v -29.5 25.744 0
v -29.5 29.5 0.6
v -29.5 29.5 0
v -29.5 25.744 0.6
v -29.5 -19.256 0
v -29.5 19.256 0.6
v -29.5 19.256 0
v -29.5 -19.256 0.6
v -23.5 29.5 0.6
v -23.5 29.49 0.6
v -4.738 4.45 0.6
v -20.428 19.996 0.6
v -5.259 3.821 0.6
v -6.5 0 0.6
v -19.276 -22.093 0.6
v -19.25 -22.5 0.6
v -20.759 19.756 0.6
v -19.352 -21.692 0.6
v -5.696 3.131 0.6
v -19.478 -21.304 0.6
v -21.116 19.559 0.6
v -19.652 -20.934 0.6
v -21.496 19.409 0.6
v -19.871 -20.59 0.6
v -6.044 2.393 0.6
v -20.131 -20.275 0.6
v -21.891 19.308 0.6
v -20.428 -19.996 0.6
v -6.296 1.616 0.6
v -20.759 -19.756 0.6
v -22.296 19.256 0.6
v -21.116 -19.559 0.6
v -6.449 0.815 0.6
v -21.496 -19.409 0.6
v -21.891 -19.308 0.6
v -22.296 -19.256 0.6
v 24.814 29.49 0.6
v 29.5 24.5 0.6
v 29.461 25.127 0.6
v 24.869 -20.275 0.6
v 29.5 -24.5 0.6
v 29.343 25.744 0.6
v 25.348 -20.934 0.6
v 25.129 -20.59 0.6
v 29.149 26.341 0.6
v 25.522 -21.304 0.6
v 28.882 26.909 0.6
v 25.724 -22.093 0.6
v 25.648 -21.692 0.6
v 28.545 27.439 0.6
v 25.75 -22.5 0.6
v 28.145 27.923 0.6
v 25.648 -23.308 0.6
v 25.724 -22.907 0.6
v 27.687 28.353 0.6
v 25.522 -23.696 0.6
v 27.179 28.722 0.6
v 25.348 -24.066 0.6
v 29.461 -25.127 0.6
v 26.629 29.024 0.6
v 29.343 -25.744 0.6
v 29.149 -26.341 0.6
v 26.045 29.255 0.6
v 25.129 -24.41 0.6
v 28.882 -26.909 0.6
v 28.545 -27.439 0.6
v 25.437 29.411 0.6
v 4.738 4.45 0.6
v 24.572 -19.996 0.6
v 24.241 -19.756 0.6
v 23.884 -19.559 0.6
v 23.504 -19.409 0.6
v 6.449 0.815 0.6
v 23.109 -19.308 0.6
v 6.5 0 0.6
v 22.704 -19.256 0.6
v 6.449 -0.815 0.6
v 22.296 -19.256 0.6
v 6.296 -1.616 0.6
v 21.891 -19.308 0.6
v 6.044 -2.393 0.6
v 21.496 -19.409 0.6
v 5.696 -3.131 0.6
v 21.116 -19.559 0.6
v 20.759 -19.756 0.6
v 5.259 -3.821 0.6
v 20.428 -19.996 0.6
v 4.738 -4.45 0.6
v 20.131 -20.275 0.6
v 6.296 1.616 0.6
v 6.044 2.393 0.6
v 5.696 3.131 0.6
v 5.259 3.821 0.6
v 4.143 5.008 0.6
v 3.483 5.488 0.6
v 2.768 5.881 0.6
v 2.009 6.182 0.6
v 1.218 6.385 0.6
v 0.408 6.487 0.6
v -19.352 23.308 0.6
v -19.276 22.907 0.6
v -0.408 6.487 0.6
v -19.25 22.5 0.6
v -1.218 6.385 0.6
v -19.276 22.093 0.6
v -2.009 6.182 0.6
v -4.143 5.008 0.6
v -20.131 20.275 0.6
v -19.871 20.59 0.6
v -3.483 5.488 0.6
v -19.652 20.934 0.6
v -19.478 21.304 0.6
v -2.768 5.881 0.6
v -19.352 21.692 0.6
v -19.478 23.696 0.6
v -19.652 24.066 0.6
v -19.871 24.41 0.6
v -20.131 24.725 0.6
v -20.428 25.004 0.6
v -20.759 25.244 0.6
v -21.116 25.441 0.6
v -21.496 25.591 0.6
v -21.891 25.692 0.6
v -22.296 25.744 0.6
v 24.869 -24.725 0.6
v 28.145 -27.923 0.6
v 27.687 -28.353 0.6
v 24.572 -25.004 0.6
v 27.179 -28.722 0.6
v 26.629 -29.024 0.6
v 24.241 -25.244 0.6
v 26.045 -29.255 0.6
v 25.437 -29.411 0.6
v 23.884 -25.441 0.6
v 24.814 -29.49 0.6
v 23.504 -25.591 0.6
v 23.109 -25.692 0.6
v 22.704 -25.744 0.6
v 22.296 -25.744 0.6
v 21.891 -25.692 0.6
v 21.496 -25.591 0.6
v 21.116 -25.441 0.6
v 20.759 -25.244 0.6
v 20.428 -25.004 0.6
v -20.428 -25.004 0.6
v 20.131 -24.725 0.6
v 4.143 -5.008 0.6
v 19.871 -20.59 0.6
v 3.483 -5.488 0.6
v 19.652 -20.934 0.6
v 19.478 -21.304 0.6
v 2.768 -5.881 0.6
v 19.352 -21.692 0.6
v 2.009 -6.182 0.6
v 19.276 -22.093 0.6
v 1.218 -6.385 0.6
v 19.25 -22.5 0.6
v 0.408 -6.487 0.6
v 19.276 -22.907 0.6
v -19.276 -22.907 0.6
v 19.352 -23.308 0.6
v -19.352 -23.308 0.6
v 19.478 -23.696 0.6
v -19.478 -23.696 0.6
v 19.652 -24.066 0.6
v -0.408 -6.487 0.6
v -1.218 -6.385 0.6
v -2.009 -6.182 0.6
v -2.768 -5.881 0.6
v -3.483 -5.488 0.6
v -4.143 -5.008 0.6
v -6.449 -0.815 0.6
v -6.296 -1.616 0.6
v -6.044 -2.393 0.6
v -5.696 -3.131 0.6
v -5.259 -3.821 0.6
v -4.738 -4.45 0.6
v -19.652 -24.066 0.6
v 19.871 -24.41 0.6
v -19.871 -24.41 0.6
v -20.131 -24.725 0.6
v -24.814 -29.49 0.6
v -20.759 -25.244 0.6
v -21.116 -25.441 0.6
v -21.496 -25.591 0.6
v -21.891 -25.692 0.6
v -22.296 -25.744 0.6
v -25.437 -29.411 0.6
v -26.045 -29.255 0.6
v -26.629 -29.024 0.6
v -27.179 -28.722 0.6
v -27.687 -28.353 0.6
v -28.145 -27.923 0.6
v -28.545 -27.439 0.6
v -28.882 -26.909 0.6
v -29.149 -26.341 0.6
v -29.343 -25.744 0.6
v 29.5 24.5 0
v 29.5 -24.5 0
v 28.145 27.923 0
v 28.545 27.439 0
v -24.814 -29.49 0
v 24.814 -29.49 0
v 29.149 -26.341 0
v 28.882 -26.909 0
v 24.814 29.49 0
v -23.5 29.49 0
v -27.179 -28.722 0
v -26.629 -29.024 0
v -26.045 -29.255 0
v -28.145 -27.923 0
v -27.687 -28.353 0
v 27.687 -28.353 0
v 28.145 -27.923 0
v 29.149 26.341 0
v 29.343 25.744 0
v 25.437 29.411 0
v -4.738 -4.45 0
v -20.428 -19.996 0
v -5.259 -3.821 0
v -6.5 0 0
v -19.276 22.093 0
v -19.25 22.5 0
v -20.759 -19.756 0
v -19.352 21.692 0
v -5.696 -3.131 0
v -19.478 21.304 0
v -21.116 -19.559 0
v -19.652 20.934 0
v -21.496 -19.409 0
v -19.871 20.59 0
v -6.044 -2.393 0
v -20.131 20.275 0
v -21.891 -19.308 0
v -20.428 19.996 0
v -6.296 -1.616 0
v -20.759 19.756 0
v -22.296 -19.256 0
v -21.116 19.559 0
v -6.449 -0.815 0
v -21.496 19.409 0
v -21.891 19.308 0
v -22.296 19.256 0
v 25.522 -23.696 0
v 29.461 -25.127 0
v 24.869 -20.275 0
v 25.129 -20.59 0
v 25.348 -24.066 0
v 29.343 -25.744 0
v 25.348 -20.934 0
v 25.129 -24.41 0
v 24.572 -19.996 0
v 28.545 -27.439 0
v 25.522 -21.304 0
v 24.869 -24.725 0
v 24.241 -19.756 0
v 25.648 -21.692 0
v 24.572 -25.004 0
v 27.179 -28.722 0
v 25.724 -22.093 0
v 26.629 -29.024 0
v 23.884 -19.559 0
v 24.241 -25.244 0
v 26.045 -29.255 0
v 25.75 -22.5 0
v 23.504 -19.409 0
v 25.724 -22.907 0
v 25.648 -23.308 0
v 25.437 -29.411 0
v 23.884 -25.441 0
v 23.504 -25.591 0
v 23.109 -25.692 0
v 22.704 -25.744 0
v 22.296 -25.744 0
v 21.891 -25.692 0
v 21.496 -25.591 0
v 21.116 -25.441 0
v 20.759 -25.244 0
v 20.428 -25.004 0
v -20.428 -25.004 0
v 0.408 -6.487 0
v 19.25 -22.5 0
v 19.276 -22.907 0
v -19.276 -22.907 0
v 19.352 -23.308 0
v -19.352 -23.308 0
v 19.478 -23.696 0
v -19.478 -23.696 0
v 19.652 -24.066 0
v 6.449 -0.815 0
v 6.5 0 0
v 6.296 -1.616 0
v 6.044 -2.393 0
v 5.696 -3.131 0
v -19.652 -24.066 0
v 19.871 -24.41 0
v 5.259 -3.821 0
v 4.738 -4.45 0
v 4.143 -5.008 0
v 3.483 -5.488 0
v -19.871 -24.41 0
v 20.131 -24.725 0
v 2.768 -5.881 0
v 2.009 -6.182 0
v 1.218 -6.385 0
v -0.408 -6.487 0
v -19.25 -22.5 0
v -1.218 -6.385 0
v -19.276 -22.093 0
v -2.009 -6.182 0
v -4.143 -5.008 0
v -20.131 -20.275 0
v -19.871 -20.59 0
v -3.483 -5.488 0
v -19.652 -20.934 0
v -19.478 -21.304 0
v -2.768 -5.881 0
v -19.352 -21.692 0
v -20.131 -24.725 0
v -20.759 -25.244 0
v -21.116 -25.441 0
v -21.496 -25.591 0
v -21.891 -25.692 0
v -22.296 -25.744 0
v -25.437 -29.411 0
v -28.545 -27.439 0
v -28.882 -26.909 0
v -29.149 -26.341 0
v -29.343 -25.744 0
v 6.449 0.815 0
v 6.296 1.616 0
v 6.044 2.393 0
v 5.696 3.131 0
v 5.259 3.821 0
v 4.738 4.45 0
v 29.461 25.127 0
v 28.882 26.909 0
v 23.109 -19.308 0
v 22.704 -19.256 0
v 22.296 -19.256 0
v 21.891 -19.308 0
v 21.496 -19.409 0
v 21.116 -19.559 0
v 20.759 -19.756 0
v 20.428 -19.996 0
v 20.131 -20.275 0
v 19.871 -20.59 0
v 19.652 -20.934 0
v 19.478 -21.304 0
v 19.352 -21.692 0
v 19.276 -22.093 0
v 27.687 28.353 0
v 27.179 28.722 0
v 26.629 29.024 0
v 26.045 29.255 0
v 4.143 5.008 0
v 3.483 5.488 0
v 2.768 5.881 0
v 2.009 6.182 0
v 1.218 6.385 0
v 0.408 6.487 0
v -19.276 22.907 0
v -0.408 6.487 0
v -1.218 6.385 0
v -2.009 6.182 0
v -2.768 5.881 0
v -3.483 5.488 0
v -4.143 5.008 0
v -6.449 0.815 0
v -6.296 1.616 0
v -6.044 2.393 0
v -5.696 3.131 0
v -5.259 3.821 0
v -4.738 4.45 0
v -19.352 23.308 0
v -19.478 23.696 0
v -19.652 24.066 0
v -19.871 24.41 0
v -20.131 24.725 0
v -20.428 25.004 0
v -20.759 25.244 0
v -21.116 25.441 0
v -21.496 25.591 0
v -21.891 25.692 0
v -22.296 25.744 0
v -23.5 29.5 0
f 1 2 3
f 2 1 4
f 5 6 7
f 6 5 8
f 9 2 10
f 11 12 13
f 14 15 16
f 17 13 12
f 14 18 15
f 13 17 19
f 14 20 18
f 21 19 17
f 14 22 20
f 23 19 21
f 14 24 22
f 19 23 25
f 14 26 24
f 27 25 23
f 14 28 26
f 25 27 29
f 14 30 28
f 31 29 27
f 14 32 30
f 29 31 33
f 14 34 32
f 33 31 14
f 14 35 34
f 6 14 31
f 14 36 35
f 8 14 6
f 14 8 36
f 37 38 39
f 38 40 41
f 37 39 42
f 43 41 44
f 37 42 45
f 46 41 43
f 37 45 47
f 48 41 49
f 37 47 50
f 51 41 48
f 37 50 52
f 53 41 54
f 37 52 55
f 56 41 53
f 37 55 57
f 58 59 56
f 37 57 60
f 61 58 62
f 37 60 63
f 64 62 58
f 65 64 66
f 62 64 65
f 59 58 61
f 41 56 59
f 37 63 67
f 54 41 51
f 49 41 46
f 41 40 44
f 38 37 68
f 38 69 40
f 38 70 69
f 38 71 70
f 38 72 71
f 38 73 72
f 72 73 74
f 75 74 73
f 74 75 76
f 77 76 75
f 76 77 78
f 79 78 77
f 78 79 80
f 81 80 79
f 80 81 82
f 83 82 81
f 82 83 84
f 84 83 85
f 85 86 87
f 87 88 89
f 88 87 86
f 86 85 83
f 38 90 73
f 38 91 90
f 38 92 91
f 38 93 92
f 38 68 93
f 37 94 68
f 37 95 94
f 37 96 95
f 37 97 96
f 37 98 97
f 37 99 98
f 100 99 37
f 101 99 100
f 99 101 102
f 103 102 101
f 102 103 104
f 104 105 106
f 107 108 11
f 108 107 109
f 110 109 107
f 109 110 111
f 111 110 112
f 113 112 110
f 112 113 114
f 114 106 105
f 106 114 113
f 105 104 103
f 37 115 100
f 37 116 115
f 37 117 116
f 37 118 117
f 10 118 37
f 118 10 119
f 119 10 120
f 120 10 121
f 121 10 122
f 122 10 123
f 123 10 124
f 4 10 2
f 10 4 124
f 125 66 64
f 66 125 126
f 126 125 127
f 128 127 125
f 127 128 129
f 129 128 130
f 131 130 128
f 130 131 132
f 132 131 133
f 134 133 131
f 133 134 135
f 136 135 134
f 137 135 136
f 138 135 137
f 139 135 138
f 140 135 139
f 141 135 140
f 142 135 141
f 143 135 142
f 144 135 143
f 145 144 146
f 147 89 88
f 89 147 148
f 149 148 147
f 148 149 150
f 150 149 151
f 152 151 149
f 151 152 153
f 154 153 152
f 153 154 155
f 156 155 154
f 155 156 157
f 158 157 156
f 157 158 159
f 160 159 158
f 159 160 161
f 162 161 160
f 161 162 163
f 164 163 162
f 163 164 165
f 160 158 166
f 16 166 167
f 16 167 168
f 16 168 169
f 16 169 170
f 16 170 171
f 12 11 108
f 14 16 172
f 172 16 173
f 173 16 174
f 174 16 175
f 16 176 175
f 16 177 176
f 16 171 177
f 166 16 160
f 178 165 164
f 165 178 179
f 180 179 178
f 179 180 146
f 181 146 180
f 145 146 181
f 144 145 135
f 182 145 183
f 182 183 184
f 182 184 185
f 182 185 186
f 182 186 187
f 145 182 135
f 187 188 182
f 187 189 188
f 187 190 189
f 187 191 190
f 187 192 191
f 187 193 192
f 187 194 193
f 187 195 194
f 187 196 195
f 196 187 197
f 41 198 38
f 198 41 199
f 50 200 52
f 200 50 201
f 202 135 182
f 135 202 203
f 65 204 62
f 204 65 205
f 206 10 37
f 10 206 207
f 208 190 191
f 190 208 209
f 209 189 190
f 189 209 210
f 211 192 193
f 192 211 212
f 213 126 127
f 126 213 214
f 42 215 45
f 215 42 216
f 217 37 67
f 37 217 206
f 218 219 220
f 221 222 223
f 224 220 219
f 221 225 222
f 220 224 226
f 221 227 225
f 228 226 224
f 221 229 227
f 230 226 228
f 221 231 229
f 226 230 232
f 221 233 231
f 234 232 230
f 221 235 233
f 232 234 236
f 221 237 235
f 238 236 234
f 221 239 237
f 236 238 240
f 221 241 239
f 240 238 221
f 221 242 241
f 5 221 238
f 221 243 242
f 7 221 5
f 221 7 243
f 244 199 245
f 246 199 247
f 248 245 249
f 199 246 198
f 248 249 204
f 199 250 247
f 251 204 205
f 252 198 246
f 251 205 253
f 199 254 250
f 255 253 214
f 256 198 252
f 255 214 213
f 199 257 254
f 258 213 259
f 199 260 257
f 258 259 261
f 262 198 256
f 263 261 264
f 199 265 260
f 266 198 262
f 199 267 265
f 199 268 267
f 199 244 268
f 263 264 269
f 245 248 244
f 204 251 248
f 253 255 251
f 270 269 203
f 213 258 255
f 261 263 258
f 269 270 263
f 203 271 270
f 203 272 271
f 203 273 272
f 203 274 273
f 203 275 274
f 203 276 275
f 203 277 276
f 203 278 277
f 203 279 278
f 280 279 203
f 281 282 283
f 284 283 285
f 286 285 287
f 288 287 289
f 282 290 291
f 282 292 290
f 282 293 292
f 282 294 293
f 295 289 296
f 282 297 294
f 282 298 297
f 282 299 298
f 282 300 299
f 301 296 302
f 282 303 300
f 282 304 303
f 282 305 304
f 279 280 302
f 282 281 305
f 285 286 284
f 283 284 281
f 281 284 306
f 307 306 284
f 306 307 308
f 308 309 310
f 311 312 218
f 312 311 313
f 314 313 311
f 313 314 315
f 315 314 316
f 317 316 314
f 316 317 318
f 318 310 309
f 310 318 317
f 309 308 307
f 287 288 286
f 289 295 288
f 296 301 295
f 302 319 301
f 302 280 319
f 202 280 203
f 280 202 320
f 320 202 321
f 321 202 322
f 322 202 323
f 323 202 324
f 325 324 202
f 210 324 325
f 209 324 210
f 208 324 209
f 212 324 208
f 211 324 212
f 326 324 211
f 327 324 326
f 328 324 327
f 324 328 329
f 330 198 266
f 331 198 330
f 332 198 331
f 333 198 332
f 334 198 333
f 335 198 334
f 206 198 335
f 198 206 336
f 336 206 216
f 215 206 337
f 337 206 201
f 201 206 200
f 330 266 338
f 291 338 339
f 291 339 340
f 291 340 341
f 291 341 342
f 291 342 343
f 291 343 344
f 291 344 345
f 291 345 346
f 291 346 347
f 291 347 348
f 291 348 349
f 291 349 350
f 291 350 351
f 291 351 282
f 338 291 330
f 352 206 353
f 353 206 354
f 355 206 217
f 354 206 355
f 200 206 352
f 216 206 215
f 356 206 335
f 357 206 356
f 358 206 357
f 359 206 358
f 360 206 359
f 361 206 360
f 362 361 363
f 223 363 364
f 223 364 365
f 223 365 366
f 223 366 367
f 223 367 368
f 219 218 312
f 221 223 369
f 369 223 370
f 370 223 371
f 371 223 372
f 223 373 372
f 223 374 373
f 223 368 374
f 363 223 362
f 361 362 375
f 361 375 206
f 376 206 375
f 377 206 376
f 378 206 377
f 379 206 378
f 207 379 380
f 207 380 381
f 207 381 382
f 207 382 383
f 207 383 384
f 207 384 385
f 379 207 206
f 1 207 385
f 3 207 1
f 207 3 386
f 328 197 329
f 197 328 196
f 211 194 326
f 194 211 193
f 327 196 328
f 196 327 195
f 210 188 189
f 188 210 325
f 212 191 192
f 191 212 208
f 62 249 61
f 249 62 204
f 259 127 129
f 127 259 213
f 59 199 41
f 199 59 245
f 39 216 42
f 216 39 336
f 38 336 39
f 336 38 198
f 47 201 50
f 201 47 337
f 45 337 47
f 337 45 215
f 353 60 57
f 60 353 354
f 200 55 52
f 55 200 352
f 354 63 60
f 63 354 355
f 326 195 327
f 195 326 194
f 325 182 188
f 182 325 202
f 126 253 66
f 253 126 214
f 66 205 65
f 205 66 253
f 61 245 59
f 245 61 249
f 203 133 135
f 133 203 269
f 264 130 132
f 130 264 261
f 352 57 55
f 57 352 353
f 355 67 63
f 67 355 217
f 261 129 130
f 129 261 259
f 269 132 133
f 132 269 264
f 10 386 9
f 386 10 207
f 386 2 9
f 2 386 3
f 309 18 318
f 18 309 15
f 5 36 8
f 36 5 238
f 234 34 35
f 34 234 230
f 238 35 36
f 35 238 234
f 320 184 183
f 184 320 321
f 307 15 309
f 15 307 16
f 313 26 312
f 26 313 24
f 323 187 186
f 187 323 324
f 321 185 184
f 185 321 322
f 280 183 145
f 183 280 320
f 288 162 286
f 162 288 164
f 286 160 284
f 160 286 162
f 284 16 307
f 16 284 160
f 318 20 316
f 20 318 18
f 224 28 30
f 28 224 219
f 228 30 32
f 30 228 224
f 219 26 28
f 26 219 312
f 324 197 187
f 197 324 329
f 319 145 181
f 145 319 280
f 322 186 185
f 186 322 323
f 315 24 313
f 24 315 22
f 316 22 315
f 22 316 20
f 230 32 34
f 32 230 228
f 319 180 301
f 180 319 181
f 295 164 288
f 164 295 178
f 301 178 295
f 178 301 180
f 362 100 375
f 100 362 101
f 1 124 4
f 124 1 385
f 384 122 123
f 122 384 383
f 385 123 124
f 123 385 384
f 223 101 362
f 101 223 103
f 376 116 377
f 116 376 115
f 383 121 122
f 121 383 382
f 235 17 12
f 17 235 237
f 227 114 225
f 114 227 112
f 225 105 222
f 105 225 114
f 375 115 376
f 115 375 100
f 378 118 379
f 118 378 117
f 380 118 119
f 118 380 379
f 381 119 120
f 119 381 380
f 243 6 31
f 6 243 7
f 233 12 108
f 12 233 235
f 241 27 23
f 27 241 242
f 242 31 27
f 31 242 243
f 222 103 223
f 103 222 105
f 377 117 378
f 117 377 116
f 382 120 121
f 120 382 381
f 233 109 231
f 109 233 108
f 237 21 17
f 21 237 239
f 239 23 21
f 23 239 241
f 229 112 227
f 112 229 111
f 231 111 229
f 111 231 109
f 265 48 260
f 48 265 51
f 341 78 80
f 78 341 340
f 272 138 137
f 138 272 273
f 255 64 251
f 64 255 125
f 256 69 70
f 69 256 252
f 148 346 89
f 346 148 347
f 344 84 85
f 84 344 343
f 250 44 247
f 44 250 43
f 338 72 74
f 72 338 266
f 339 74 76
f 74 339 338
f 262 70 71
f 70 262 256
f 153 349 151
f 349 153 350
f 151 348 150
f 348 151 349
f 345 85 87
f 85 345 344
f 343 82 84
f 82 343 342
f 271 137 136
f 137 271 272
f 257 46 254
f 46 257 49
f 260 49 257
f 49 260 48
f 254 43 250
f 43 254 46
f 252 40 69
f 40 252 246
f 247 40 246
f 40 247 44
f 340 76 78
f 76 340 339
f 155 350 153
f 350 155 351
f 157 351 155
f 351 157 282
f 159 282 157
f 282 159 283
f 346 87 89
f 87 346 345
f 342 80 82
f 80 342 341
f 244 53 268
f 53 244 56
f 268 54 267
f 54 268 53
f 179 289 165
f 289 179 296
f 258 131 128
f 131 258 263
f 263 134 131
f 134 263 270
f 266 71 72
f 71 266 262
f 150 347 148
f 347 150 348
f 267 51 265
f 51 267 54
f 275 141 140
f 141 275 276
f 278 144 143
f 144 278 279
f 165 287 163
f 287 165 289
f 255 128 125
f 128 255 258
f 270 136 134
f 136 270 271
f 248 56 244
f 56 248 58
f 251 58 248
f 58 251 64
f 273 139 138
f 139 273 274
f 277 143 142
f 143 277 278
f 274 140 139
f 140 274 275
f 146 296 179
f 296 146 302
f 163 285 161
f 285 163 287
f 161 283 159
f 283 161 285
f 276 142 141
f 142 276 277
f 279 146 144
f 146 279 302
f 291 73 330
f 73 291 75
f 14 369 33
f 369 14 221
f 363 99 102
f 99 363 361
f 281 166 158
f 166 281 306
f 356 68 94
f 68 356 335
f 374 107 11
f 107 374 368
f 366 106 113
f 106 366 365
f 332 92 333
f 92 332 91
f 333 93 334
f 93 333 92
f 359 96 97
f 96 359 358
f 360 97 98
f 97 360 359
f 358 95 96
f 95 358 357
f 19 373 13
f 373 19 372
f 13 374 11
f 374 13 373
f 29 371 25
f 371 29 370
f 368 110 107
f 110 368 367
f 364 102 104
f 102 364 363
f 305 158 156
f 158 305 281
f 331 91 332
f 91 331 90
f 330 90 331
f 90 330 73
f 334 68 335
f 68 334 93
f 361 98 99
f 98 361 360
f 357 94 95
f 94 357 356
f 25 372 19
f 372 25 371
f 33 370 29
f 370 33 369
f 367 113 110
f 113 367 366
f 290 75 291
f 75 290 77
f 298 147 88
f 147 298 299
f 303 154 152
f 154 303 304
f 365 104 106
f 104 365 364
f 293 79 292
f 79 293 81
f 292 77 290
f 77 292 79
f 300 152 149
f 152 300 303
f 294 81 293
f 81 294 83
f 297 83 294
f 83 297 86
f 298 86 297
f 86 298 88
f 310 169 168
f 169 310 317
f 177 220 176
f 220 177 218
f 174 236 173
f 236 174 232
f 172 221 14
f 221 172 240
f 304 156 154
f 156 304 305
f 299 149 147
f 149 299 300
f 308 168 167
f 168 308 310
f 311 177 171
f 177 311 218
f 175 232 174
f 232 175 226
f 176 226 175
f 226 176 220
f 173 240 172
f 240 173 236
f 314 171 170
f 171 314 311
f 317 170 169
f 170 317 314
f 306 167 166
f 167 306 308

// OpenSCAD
$fn = 50;


difference() {
	union() {
		translate(v = [0, 0, 0]) {
			rotate(a = [0, 0, 0]) {
				hull() {
					translate(v = [-24.5000000000, 24.5000000000, 0]) {
						rotate(a = [0, 0, 0]) {
							translate(v = [0, 0, 0]) {
								rotate(a = [0, 0, 0]) {
									cylinder(h = 0.6000000000, r = 5);
								}
							}
						}
					}
					translate(v = [24.5000000000, 24.5000000000, 0]) {
						rotate(a = [0, 0, 0]) {
							translate(v = [0, 0, 0]) {
								rotate(a = [0, 0, 0]) {
									cylinder(h = 0.6000000000, r = 5);
								}
							}
						}
					}
					translate(v = [-24.5000000000, -24.5000000000, 0]) {
						rotate(a = [0, 0, 0]) {
							translate(v = [0, 0, 0]) {
								rotate(a = [0, 0, 0]) {
									cylinder(h = 0.6000000000, r = 5);
								}
							}
						}
					}
					translate(v = [24.5000000000, -24.5000000000, 0]) {
						rotate(a = [0, 0, 0]) {
							translate(v = [0, 0, 0]) {
								rotate(a = [0, 0, 0]) {
									cylinder(h = 0.6000000000, r = 5);
								}
							}
						}
					}
				}
			}
		}
		translate(v = [-29.5000000000, 23.5000000000, 0]) {
			rotate(a = [0, 0, 0]) {
				cube(size = [6, 6, 0.6000000000]);
			}
		}
	}
	union() {
		translate(v = [-30.0000000000, -22.5000000000, -125]) {
			rotate(a = [0, 0, 0]) {
				hull() {
					translate(v = [7.5000000000, 0, 0]) {
						rotate(a = [0, 0, 0]) {
							translate(v = [0, 0, 0]) {
								rotate(a = [0, 0, 0]) {
									cylinder(h = 250, r = 3.2500000000);
								}
							}
						}
					}
					translate(v = [-7.5000000000, 0, 0]) {
						rotate(a = [0, 0, 0]) {
							translate(v = [0, 0, 0]) {
								rotate(a = [0, 0, 0]) {
									cylinder(h = 250, r = 3.2500000000);
								}
							}
						}
					}
				}
			}
		}
		translate(v = [-30.0000000000, 22.5000000000, -125]) {
			rotate(a = [0, 0, 0]) {
				hull() {
					translate(v = [7.5000000000, 0, 0]) {
						rotate(a = [0, 0, 0]) {
							translate(v = [0, 0, 0]) {
								rotate(a = [0, 0, 0]) {
									cylinder(h = 250, r = 3.2500000000);
								}
							}
						}
					}
					translate(v = [-7.5000000000, 0, 0]) {
						rotate(a = [0, 0, 0]) {
							translate(v = [0, 0, 0]) {
								rotate(a = [0, 0, 0]) {
									cylinder(h = 250, r = 3.2500000000);
								}
							}
						}
					}
				}
			}
		}
		translate(v = [22.5000000000, -22.5000000000, -125.0000000000]) {
			rotate(a = [0, 0, 0]) {
				cylinder(h = 250, r = 3.2500000000);
			}
		}
		translate(v = [0, 0, 0.0000000000]) {
			rotate(a = [0, 0, 0]) {
				cylinder(h = 0.6000000000, r = 6.5000000000);
			}
		}
	}
}
